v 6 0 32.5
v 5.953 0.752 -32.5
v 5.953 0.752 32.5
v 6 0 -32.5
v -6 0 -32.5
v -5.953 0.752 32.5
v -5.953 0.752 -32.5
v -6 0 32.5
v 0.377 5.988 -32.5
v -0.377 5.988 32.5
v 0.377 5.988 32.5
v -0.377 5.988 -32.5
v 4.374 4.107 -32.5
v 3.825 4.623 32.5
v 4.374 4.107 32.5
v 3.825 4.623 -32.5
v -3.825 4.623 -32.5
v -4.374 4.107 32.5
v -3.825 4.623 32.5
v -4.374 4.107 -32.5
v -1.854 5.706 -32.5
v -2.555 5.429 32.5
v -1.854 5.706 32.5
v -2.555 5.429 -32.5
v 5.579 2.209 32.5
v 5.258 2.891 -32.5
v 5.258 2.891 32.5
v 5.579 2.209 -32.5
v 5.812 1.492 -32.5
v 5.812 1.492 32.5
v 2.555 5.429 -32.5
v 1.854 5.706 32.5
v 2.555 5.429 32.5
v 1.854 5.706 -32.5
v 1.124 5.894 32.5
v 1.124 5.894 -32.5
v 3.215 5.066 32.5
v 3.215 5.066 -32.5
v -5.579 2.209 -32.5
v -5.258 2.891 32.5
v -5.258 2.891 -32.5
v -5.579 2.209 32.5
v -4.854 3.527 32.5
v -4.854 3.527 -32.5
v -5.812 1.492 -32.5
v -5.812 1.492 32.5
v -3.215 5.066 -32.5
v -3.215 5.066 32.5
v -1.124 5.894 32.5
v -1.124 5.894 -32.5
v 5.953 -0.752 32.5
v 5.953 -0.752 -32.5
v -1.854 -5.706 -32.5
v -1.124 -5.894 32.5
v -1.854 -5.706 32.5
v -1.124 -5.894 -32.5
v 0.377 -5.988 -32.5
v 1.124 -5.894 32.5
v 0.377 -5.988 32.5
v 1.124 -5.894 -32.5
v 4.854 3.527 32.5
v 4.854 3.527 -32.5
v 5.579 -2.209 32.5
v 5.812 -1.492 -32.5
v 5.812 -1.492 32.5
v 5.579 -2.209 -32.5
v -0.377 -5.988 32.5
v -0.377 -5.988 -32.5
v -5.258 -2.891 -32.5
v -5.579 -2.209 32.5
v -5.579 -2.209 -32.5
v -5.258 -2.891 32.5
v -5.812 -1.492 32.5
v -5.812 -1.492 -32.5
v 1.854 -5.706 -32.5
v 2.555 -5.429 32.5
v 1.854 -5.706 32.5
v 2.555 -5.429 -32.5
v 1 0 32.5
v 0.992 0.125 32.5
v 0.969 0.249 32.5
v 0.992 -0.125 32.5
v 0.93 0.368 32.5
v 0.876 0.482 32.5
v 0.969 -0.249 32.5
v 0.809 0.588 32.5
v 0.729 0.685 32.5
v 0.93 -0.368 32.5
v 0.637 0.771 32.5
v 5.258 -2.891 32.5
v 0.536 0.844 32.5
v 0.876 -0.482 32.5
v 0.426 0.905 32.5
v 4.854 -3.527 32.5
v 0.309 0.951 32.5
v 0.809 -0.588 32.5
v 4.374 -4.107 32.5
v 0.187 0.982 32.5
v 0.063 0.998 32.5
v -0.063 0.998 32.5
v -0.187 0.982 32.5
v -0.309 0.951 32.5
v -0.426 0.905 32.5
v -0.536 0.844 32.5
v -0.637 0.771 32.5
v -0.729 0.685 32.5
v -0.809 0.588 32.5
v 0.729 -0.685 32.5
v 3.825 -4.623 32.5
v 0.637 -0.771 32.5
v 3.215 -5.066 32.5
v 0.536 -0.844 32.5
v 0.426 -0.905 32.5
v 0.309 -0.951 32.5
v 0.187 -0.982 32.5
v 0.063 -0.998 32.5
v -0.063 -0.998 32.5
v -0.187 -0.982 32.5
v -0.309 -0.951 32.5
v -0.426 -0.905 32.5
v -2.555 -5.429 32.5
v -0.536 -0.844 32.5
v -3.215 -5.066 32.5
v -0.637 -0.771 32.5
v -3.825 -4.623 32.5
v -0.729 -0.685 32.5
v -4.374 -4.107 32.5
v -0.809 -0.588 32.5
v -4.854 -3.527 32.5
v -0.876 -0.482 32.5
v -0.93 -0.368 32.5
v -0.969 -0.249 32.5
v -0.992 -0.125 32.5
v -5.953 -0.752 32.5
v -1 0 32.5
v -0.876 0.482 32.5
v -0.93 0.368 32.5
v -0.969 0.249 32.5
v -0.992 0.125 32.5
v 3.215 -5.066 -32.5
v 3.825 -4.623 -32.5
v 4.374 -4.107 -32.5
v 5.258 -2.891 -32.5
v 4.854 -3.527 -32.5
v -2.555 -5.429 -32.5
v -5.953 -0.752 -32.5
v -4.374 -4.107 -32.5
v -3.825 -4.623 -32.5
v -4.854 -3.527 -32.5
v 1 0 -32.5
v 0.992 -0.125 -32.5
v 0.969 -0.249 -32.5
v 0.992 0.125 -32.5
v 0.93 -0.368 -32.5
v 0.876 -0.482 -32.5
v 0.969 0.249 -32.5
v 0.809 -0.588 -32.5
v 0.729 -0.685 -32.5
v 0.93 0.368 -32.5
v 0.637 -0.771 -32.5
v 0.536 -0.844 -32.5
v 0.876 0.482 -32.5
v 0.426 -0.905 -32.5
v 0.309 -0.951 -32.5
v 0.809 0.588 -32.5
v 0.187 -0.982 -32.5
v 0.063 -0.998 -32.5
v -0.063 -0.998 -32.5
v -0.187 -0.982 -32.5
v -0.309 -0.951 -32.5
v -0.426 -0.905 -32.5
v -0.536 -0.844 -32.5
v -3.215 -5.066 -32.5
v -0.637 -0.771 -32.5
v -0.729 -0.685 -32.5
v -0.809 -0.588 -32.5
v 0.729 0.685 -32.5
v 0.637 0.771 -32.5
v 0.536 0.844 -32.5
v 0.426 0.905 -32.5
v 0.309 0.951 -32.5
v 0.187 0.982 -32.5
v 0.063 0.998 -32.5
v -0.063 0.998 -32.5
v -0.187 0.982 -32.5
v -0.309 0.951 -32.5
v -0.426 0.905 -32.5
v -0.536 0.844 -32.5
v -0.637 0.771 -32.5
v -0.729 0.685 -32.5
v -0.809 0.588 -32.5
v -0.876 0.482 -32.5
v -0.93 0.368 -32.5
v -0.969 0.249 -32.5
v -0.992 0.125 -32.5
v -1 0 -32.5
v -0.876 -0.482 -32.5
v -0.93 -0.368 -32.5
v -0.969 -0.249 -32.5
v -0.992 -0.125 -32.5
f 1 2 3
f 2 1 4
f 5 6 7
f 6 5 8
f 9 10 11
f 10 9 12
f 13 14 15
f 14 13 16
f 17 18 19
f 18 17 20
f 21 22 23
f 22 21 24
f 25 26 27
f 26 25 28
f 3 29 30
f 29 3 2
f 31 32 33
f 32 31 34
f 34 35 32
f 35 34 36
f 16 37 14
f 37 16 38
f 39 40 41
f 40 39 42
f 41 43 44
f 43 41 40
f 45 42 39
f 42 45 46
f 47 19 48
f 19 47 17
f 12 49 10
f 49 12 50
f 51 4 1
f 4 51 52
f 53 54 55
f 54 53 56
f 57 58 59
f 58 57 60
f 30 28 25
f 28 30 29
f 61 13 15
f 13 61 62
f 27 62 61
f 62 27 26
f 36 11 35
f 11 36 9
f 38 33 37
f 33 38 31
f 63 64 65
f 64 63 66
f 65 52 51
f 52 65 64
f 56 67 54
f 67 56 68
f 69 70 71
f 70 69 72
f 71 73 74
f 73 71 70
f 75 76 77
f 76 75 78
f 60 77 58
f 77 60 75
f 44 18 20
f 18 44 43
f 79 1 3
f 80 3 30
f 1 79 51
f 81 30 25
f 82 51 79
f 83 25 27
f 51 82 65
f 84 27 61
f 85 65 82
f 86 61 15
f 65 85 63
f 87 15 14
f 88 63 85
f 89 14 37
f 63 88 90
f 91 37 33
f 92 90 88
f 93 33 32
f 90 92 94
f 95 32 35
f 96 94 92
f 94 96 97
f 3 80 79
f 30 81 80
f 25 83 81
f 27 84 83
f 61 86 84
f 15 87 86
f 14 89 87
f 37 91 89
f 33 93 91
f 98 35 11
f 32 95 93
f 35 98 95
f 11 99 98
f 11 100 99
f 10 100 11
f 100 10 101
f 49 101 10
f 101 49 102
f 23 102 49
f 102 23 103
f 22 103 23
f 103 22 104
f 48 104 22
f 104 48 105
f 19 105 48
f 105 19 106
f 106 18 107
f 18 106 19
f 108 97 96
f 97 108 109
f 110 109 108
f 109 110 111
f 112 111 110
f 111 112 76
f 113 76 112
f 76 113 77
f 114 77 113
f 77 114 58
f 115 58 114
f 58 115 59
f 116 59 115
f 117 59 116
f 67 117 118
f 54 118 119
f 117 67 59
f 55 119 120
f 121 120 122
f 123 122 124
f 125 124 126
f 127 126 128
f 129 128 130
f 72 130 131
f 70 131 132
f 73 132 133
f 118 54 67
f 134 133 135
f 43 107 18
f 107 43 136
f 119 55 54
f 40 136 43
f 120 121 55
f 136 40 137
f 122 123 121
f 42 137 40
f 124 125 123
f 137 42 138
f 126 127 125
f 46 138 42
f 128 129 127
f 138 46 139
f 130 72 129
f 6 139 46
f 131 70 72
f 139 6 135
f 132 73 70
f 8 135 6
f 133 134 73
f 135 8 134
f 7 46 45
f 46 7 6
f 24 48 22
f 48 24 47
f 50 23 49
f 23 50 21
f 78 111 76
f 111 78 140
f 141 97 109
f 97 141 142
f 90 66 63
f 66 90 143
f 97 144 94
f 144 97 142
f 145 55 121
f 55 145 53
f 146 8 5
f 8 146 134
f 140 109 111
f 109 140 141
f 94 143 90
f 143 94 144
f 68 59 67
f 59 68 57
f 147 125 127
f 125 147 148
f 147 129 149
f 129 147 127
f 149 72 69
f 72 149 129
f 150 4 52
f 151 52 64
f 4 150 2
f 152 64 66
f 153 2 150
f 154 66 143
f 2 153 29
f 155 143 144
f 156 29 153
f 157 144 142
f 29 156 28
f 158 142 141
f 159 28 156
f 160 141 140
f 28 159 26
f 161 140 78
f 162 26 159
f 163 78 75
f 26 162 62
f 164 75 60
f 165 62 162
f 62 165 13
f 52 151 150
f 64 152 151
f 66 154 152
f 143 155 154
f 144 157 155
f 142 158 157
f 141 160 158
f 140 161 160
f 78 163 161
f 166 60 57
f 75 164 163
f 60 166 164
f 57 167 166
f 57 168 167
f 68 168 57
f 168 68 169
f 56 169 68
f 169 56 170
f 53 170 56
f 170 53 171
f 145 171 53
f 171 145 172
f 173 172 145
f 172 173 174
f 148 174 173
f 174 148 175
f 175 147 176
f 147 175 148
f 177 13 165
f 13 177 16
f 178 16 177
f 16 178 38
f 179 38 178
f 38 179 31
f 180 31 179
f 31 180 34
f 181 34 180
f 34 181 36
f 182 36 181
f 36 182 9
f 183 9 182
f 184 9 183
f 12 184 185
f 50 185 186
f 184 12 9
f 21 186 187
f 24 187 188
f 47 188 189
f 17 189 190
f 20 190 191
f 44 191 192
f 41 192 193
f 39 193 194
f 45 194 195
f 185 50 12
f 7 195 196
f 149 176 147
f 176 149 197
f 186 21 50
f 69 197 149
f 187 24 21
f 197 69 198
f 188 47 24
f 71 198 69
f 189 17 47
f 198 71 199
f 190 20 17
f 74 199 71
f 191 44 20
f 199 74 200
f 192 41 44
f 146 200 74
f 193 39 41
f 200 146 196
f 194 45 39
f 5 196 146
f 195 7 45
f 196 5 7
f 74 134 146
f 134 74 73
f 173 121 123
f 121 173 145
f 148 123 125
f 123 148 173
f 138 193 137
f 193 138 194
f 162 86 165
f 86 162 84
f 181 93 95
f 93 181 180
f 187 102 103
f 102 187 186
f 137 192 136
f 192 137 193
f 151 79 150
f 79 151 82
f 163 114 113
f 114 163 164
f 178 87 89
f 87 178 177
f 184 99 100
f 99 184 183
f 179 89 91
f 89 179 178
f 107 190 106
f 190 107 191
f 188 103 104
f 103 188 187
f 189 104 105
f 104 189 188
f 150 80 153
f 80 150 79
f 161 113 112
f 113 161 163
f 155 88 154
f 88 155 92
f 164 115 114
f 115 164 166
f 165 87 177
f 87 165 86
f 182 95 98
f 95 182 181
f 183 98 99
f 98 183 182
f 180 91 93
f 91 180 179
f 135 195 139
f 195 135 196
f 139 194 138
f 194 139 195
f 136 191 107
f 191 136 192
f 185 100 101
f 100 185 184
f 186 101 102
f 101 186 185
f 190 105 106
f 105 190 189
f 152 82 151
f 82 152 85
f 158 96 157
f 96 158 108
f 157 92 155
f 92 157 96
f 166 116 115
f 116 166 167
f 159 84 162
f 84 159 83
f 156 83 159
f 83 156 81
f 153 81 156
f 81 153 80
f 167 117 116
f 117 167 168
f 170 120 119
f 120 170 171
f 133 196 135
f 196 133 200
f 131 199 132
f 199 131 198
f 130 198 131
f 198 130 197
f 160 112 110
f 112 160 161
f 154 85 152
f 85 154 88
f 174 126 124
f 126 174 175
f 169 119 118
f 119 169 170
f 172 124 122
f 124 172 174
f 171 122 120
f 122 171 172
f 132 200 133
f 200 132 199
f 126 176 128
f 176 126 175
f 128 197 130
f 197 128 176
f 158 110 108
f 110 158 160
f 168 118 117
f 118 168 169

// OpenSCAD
$fn = 50;


difference() {
	union() {
		translate(v = [0, 0, -32.5000000000]) {
			cylinder(h = 65, r = 6.0000000000);
		}
	}
	union() {
		translate(v = [0, 0, -100.0000000000]) {
			cylinder(h = 200, r = 1.0000000000);
		}
	}
}
